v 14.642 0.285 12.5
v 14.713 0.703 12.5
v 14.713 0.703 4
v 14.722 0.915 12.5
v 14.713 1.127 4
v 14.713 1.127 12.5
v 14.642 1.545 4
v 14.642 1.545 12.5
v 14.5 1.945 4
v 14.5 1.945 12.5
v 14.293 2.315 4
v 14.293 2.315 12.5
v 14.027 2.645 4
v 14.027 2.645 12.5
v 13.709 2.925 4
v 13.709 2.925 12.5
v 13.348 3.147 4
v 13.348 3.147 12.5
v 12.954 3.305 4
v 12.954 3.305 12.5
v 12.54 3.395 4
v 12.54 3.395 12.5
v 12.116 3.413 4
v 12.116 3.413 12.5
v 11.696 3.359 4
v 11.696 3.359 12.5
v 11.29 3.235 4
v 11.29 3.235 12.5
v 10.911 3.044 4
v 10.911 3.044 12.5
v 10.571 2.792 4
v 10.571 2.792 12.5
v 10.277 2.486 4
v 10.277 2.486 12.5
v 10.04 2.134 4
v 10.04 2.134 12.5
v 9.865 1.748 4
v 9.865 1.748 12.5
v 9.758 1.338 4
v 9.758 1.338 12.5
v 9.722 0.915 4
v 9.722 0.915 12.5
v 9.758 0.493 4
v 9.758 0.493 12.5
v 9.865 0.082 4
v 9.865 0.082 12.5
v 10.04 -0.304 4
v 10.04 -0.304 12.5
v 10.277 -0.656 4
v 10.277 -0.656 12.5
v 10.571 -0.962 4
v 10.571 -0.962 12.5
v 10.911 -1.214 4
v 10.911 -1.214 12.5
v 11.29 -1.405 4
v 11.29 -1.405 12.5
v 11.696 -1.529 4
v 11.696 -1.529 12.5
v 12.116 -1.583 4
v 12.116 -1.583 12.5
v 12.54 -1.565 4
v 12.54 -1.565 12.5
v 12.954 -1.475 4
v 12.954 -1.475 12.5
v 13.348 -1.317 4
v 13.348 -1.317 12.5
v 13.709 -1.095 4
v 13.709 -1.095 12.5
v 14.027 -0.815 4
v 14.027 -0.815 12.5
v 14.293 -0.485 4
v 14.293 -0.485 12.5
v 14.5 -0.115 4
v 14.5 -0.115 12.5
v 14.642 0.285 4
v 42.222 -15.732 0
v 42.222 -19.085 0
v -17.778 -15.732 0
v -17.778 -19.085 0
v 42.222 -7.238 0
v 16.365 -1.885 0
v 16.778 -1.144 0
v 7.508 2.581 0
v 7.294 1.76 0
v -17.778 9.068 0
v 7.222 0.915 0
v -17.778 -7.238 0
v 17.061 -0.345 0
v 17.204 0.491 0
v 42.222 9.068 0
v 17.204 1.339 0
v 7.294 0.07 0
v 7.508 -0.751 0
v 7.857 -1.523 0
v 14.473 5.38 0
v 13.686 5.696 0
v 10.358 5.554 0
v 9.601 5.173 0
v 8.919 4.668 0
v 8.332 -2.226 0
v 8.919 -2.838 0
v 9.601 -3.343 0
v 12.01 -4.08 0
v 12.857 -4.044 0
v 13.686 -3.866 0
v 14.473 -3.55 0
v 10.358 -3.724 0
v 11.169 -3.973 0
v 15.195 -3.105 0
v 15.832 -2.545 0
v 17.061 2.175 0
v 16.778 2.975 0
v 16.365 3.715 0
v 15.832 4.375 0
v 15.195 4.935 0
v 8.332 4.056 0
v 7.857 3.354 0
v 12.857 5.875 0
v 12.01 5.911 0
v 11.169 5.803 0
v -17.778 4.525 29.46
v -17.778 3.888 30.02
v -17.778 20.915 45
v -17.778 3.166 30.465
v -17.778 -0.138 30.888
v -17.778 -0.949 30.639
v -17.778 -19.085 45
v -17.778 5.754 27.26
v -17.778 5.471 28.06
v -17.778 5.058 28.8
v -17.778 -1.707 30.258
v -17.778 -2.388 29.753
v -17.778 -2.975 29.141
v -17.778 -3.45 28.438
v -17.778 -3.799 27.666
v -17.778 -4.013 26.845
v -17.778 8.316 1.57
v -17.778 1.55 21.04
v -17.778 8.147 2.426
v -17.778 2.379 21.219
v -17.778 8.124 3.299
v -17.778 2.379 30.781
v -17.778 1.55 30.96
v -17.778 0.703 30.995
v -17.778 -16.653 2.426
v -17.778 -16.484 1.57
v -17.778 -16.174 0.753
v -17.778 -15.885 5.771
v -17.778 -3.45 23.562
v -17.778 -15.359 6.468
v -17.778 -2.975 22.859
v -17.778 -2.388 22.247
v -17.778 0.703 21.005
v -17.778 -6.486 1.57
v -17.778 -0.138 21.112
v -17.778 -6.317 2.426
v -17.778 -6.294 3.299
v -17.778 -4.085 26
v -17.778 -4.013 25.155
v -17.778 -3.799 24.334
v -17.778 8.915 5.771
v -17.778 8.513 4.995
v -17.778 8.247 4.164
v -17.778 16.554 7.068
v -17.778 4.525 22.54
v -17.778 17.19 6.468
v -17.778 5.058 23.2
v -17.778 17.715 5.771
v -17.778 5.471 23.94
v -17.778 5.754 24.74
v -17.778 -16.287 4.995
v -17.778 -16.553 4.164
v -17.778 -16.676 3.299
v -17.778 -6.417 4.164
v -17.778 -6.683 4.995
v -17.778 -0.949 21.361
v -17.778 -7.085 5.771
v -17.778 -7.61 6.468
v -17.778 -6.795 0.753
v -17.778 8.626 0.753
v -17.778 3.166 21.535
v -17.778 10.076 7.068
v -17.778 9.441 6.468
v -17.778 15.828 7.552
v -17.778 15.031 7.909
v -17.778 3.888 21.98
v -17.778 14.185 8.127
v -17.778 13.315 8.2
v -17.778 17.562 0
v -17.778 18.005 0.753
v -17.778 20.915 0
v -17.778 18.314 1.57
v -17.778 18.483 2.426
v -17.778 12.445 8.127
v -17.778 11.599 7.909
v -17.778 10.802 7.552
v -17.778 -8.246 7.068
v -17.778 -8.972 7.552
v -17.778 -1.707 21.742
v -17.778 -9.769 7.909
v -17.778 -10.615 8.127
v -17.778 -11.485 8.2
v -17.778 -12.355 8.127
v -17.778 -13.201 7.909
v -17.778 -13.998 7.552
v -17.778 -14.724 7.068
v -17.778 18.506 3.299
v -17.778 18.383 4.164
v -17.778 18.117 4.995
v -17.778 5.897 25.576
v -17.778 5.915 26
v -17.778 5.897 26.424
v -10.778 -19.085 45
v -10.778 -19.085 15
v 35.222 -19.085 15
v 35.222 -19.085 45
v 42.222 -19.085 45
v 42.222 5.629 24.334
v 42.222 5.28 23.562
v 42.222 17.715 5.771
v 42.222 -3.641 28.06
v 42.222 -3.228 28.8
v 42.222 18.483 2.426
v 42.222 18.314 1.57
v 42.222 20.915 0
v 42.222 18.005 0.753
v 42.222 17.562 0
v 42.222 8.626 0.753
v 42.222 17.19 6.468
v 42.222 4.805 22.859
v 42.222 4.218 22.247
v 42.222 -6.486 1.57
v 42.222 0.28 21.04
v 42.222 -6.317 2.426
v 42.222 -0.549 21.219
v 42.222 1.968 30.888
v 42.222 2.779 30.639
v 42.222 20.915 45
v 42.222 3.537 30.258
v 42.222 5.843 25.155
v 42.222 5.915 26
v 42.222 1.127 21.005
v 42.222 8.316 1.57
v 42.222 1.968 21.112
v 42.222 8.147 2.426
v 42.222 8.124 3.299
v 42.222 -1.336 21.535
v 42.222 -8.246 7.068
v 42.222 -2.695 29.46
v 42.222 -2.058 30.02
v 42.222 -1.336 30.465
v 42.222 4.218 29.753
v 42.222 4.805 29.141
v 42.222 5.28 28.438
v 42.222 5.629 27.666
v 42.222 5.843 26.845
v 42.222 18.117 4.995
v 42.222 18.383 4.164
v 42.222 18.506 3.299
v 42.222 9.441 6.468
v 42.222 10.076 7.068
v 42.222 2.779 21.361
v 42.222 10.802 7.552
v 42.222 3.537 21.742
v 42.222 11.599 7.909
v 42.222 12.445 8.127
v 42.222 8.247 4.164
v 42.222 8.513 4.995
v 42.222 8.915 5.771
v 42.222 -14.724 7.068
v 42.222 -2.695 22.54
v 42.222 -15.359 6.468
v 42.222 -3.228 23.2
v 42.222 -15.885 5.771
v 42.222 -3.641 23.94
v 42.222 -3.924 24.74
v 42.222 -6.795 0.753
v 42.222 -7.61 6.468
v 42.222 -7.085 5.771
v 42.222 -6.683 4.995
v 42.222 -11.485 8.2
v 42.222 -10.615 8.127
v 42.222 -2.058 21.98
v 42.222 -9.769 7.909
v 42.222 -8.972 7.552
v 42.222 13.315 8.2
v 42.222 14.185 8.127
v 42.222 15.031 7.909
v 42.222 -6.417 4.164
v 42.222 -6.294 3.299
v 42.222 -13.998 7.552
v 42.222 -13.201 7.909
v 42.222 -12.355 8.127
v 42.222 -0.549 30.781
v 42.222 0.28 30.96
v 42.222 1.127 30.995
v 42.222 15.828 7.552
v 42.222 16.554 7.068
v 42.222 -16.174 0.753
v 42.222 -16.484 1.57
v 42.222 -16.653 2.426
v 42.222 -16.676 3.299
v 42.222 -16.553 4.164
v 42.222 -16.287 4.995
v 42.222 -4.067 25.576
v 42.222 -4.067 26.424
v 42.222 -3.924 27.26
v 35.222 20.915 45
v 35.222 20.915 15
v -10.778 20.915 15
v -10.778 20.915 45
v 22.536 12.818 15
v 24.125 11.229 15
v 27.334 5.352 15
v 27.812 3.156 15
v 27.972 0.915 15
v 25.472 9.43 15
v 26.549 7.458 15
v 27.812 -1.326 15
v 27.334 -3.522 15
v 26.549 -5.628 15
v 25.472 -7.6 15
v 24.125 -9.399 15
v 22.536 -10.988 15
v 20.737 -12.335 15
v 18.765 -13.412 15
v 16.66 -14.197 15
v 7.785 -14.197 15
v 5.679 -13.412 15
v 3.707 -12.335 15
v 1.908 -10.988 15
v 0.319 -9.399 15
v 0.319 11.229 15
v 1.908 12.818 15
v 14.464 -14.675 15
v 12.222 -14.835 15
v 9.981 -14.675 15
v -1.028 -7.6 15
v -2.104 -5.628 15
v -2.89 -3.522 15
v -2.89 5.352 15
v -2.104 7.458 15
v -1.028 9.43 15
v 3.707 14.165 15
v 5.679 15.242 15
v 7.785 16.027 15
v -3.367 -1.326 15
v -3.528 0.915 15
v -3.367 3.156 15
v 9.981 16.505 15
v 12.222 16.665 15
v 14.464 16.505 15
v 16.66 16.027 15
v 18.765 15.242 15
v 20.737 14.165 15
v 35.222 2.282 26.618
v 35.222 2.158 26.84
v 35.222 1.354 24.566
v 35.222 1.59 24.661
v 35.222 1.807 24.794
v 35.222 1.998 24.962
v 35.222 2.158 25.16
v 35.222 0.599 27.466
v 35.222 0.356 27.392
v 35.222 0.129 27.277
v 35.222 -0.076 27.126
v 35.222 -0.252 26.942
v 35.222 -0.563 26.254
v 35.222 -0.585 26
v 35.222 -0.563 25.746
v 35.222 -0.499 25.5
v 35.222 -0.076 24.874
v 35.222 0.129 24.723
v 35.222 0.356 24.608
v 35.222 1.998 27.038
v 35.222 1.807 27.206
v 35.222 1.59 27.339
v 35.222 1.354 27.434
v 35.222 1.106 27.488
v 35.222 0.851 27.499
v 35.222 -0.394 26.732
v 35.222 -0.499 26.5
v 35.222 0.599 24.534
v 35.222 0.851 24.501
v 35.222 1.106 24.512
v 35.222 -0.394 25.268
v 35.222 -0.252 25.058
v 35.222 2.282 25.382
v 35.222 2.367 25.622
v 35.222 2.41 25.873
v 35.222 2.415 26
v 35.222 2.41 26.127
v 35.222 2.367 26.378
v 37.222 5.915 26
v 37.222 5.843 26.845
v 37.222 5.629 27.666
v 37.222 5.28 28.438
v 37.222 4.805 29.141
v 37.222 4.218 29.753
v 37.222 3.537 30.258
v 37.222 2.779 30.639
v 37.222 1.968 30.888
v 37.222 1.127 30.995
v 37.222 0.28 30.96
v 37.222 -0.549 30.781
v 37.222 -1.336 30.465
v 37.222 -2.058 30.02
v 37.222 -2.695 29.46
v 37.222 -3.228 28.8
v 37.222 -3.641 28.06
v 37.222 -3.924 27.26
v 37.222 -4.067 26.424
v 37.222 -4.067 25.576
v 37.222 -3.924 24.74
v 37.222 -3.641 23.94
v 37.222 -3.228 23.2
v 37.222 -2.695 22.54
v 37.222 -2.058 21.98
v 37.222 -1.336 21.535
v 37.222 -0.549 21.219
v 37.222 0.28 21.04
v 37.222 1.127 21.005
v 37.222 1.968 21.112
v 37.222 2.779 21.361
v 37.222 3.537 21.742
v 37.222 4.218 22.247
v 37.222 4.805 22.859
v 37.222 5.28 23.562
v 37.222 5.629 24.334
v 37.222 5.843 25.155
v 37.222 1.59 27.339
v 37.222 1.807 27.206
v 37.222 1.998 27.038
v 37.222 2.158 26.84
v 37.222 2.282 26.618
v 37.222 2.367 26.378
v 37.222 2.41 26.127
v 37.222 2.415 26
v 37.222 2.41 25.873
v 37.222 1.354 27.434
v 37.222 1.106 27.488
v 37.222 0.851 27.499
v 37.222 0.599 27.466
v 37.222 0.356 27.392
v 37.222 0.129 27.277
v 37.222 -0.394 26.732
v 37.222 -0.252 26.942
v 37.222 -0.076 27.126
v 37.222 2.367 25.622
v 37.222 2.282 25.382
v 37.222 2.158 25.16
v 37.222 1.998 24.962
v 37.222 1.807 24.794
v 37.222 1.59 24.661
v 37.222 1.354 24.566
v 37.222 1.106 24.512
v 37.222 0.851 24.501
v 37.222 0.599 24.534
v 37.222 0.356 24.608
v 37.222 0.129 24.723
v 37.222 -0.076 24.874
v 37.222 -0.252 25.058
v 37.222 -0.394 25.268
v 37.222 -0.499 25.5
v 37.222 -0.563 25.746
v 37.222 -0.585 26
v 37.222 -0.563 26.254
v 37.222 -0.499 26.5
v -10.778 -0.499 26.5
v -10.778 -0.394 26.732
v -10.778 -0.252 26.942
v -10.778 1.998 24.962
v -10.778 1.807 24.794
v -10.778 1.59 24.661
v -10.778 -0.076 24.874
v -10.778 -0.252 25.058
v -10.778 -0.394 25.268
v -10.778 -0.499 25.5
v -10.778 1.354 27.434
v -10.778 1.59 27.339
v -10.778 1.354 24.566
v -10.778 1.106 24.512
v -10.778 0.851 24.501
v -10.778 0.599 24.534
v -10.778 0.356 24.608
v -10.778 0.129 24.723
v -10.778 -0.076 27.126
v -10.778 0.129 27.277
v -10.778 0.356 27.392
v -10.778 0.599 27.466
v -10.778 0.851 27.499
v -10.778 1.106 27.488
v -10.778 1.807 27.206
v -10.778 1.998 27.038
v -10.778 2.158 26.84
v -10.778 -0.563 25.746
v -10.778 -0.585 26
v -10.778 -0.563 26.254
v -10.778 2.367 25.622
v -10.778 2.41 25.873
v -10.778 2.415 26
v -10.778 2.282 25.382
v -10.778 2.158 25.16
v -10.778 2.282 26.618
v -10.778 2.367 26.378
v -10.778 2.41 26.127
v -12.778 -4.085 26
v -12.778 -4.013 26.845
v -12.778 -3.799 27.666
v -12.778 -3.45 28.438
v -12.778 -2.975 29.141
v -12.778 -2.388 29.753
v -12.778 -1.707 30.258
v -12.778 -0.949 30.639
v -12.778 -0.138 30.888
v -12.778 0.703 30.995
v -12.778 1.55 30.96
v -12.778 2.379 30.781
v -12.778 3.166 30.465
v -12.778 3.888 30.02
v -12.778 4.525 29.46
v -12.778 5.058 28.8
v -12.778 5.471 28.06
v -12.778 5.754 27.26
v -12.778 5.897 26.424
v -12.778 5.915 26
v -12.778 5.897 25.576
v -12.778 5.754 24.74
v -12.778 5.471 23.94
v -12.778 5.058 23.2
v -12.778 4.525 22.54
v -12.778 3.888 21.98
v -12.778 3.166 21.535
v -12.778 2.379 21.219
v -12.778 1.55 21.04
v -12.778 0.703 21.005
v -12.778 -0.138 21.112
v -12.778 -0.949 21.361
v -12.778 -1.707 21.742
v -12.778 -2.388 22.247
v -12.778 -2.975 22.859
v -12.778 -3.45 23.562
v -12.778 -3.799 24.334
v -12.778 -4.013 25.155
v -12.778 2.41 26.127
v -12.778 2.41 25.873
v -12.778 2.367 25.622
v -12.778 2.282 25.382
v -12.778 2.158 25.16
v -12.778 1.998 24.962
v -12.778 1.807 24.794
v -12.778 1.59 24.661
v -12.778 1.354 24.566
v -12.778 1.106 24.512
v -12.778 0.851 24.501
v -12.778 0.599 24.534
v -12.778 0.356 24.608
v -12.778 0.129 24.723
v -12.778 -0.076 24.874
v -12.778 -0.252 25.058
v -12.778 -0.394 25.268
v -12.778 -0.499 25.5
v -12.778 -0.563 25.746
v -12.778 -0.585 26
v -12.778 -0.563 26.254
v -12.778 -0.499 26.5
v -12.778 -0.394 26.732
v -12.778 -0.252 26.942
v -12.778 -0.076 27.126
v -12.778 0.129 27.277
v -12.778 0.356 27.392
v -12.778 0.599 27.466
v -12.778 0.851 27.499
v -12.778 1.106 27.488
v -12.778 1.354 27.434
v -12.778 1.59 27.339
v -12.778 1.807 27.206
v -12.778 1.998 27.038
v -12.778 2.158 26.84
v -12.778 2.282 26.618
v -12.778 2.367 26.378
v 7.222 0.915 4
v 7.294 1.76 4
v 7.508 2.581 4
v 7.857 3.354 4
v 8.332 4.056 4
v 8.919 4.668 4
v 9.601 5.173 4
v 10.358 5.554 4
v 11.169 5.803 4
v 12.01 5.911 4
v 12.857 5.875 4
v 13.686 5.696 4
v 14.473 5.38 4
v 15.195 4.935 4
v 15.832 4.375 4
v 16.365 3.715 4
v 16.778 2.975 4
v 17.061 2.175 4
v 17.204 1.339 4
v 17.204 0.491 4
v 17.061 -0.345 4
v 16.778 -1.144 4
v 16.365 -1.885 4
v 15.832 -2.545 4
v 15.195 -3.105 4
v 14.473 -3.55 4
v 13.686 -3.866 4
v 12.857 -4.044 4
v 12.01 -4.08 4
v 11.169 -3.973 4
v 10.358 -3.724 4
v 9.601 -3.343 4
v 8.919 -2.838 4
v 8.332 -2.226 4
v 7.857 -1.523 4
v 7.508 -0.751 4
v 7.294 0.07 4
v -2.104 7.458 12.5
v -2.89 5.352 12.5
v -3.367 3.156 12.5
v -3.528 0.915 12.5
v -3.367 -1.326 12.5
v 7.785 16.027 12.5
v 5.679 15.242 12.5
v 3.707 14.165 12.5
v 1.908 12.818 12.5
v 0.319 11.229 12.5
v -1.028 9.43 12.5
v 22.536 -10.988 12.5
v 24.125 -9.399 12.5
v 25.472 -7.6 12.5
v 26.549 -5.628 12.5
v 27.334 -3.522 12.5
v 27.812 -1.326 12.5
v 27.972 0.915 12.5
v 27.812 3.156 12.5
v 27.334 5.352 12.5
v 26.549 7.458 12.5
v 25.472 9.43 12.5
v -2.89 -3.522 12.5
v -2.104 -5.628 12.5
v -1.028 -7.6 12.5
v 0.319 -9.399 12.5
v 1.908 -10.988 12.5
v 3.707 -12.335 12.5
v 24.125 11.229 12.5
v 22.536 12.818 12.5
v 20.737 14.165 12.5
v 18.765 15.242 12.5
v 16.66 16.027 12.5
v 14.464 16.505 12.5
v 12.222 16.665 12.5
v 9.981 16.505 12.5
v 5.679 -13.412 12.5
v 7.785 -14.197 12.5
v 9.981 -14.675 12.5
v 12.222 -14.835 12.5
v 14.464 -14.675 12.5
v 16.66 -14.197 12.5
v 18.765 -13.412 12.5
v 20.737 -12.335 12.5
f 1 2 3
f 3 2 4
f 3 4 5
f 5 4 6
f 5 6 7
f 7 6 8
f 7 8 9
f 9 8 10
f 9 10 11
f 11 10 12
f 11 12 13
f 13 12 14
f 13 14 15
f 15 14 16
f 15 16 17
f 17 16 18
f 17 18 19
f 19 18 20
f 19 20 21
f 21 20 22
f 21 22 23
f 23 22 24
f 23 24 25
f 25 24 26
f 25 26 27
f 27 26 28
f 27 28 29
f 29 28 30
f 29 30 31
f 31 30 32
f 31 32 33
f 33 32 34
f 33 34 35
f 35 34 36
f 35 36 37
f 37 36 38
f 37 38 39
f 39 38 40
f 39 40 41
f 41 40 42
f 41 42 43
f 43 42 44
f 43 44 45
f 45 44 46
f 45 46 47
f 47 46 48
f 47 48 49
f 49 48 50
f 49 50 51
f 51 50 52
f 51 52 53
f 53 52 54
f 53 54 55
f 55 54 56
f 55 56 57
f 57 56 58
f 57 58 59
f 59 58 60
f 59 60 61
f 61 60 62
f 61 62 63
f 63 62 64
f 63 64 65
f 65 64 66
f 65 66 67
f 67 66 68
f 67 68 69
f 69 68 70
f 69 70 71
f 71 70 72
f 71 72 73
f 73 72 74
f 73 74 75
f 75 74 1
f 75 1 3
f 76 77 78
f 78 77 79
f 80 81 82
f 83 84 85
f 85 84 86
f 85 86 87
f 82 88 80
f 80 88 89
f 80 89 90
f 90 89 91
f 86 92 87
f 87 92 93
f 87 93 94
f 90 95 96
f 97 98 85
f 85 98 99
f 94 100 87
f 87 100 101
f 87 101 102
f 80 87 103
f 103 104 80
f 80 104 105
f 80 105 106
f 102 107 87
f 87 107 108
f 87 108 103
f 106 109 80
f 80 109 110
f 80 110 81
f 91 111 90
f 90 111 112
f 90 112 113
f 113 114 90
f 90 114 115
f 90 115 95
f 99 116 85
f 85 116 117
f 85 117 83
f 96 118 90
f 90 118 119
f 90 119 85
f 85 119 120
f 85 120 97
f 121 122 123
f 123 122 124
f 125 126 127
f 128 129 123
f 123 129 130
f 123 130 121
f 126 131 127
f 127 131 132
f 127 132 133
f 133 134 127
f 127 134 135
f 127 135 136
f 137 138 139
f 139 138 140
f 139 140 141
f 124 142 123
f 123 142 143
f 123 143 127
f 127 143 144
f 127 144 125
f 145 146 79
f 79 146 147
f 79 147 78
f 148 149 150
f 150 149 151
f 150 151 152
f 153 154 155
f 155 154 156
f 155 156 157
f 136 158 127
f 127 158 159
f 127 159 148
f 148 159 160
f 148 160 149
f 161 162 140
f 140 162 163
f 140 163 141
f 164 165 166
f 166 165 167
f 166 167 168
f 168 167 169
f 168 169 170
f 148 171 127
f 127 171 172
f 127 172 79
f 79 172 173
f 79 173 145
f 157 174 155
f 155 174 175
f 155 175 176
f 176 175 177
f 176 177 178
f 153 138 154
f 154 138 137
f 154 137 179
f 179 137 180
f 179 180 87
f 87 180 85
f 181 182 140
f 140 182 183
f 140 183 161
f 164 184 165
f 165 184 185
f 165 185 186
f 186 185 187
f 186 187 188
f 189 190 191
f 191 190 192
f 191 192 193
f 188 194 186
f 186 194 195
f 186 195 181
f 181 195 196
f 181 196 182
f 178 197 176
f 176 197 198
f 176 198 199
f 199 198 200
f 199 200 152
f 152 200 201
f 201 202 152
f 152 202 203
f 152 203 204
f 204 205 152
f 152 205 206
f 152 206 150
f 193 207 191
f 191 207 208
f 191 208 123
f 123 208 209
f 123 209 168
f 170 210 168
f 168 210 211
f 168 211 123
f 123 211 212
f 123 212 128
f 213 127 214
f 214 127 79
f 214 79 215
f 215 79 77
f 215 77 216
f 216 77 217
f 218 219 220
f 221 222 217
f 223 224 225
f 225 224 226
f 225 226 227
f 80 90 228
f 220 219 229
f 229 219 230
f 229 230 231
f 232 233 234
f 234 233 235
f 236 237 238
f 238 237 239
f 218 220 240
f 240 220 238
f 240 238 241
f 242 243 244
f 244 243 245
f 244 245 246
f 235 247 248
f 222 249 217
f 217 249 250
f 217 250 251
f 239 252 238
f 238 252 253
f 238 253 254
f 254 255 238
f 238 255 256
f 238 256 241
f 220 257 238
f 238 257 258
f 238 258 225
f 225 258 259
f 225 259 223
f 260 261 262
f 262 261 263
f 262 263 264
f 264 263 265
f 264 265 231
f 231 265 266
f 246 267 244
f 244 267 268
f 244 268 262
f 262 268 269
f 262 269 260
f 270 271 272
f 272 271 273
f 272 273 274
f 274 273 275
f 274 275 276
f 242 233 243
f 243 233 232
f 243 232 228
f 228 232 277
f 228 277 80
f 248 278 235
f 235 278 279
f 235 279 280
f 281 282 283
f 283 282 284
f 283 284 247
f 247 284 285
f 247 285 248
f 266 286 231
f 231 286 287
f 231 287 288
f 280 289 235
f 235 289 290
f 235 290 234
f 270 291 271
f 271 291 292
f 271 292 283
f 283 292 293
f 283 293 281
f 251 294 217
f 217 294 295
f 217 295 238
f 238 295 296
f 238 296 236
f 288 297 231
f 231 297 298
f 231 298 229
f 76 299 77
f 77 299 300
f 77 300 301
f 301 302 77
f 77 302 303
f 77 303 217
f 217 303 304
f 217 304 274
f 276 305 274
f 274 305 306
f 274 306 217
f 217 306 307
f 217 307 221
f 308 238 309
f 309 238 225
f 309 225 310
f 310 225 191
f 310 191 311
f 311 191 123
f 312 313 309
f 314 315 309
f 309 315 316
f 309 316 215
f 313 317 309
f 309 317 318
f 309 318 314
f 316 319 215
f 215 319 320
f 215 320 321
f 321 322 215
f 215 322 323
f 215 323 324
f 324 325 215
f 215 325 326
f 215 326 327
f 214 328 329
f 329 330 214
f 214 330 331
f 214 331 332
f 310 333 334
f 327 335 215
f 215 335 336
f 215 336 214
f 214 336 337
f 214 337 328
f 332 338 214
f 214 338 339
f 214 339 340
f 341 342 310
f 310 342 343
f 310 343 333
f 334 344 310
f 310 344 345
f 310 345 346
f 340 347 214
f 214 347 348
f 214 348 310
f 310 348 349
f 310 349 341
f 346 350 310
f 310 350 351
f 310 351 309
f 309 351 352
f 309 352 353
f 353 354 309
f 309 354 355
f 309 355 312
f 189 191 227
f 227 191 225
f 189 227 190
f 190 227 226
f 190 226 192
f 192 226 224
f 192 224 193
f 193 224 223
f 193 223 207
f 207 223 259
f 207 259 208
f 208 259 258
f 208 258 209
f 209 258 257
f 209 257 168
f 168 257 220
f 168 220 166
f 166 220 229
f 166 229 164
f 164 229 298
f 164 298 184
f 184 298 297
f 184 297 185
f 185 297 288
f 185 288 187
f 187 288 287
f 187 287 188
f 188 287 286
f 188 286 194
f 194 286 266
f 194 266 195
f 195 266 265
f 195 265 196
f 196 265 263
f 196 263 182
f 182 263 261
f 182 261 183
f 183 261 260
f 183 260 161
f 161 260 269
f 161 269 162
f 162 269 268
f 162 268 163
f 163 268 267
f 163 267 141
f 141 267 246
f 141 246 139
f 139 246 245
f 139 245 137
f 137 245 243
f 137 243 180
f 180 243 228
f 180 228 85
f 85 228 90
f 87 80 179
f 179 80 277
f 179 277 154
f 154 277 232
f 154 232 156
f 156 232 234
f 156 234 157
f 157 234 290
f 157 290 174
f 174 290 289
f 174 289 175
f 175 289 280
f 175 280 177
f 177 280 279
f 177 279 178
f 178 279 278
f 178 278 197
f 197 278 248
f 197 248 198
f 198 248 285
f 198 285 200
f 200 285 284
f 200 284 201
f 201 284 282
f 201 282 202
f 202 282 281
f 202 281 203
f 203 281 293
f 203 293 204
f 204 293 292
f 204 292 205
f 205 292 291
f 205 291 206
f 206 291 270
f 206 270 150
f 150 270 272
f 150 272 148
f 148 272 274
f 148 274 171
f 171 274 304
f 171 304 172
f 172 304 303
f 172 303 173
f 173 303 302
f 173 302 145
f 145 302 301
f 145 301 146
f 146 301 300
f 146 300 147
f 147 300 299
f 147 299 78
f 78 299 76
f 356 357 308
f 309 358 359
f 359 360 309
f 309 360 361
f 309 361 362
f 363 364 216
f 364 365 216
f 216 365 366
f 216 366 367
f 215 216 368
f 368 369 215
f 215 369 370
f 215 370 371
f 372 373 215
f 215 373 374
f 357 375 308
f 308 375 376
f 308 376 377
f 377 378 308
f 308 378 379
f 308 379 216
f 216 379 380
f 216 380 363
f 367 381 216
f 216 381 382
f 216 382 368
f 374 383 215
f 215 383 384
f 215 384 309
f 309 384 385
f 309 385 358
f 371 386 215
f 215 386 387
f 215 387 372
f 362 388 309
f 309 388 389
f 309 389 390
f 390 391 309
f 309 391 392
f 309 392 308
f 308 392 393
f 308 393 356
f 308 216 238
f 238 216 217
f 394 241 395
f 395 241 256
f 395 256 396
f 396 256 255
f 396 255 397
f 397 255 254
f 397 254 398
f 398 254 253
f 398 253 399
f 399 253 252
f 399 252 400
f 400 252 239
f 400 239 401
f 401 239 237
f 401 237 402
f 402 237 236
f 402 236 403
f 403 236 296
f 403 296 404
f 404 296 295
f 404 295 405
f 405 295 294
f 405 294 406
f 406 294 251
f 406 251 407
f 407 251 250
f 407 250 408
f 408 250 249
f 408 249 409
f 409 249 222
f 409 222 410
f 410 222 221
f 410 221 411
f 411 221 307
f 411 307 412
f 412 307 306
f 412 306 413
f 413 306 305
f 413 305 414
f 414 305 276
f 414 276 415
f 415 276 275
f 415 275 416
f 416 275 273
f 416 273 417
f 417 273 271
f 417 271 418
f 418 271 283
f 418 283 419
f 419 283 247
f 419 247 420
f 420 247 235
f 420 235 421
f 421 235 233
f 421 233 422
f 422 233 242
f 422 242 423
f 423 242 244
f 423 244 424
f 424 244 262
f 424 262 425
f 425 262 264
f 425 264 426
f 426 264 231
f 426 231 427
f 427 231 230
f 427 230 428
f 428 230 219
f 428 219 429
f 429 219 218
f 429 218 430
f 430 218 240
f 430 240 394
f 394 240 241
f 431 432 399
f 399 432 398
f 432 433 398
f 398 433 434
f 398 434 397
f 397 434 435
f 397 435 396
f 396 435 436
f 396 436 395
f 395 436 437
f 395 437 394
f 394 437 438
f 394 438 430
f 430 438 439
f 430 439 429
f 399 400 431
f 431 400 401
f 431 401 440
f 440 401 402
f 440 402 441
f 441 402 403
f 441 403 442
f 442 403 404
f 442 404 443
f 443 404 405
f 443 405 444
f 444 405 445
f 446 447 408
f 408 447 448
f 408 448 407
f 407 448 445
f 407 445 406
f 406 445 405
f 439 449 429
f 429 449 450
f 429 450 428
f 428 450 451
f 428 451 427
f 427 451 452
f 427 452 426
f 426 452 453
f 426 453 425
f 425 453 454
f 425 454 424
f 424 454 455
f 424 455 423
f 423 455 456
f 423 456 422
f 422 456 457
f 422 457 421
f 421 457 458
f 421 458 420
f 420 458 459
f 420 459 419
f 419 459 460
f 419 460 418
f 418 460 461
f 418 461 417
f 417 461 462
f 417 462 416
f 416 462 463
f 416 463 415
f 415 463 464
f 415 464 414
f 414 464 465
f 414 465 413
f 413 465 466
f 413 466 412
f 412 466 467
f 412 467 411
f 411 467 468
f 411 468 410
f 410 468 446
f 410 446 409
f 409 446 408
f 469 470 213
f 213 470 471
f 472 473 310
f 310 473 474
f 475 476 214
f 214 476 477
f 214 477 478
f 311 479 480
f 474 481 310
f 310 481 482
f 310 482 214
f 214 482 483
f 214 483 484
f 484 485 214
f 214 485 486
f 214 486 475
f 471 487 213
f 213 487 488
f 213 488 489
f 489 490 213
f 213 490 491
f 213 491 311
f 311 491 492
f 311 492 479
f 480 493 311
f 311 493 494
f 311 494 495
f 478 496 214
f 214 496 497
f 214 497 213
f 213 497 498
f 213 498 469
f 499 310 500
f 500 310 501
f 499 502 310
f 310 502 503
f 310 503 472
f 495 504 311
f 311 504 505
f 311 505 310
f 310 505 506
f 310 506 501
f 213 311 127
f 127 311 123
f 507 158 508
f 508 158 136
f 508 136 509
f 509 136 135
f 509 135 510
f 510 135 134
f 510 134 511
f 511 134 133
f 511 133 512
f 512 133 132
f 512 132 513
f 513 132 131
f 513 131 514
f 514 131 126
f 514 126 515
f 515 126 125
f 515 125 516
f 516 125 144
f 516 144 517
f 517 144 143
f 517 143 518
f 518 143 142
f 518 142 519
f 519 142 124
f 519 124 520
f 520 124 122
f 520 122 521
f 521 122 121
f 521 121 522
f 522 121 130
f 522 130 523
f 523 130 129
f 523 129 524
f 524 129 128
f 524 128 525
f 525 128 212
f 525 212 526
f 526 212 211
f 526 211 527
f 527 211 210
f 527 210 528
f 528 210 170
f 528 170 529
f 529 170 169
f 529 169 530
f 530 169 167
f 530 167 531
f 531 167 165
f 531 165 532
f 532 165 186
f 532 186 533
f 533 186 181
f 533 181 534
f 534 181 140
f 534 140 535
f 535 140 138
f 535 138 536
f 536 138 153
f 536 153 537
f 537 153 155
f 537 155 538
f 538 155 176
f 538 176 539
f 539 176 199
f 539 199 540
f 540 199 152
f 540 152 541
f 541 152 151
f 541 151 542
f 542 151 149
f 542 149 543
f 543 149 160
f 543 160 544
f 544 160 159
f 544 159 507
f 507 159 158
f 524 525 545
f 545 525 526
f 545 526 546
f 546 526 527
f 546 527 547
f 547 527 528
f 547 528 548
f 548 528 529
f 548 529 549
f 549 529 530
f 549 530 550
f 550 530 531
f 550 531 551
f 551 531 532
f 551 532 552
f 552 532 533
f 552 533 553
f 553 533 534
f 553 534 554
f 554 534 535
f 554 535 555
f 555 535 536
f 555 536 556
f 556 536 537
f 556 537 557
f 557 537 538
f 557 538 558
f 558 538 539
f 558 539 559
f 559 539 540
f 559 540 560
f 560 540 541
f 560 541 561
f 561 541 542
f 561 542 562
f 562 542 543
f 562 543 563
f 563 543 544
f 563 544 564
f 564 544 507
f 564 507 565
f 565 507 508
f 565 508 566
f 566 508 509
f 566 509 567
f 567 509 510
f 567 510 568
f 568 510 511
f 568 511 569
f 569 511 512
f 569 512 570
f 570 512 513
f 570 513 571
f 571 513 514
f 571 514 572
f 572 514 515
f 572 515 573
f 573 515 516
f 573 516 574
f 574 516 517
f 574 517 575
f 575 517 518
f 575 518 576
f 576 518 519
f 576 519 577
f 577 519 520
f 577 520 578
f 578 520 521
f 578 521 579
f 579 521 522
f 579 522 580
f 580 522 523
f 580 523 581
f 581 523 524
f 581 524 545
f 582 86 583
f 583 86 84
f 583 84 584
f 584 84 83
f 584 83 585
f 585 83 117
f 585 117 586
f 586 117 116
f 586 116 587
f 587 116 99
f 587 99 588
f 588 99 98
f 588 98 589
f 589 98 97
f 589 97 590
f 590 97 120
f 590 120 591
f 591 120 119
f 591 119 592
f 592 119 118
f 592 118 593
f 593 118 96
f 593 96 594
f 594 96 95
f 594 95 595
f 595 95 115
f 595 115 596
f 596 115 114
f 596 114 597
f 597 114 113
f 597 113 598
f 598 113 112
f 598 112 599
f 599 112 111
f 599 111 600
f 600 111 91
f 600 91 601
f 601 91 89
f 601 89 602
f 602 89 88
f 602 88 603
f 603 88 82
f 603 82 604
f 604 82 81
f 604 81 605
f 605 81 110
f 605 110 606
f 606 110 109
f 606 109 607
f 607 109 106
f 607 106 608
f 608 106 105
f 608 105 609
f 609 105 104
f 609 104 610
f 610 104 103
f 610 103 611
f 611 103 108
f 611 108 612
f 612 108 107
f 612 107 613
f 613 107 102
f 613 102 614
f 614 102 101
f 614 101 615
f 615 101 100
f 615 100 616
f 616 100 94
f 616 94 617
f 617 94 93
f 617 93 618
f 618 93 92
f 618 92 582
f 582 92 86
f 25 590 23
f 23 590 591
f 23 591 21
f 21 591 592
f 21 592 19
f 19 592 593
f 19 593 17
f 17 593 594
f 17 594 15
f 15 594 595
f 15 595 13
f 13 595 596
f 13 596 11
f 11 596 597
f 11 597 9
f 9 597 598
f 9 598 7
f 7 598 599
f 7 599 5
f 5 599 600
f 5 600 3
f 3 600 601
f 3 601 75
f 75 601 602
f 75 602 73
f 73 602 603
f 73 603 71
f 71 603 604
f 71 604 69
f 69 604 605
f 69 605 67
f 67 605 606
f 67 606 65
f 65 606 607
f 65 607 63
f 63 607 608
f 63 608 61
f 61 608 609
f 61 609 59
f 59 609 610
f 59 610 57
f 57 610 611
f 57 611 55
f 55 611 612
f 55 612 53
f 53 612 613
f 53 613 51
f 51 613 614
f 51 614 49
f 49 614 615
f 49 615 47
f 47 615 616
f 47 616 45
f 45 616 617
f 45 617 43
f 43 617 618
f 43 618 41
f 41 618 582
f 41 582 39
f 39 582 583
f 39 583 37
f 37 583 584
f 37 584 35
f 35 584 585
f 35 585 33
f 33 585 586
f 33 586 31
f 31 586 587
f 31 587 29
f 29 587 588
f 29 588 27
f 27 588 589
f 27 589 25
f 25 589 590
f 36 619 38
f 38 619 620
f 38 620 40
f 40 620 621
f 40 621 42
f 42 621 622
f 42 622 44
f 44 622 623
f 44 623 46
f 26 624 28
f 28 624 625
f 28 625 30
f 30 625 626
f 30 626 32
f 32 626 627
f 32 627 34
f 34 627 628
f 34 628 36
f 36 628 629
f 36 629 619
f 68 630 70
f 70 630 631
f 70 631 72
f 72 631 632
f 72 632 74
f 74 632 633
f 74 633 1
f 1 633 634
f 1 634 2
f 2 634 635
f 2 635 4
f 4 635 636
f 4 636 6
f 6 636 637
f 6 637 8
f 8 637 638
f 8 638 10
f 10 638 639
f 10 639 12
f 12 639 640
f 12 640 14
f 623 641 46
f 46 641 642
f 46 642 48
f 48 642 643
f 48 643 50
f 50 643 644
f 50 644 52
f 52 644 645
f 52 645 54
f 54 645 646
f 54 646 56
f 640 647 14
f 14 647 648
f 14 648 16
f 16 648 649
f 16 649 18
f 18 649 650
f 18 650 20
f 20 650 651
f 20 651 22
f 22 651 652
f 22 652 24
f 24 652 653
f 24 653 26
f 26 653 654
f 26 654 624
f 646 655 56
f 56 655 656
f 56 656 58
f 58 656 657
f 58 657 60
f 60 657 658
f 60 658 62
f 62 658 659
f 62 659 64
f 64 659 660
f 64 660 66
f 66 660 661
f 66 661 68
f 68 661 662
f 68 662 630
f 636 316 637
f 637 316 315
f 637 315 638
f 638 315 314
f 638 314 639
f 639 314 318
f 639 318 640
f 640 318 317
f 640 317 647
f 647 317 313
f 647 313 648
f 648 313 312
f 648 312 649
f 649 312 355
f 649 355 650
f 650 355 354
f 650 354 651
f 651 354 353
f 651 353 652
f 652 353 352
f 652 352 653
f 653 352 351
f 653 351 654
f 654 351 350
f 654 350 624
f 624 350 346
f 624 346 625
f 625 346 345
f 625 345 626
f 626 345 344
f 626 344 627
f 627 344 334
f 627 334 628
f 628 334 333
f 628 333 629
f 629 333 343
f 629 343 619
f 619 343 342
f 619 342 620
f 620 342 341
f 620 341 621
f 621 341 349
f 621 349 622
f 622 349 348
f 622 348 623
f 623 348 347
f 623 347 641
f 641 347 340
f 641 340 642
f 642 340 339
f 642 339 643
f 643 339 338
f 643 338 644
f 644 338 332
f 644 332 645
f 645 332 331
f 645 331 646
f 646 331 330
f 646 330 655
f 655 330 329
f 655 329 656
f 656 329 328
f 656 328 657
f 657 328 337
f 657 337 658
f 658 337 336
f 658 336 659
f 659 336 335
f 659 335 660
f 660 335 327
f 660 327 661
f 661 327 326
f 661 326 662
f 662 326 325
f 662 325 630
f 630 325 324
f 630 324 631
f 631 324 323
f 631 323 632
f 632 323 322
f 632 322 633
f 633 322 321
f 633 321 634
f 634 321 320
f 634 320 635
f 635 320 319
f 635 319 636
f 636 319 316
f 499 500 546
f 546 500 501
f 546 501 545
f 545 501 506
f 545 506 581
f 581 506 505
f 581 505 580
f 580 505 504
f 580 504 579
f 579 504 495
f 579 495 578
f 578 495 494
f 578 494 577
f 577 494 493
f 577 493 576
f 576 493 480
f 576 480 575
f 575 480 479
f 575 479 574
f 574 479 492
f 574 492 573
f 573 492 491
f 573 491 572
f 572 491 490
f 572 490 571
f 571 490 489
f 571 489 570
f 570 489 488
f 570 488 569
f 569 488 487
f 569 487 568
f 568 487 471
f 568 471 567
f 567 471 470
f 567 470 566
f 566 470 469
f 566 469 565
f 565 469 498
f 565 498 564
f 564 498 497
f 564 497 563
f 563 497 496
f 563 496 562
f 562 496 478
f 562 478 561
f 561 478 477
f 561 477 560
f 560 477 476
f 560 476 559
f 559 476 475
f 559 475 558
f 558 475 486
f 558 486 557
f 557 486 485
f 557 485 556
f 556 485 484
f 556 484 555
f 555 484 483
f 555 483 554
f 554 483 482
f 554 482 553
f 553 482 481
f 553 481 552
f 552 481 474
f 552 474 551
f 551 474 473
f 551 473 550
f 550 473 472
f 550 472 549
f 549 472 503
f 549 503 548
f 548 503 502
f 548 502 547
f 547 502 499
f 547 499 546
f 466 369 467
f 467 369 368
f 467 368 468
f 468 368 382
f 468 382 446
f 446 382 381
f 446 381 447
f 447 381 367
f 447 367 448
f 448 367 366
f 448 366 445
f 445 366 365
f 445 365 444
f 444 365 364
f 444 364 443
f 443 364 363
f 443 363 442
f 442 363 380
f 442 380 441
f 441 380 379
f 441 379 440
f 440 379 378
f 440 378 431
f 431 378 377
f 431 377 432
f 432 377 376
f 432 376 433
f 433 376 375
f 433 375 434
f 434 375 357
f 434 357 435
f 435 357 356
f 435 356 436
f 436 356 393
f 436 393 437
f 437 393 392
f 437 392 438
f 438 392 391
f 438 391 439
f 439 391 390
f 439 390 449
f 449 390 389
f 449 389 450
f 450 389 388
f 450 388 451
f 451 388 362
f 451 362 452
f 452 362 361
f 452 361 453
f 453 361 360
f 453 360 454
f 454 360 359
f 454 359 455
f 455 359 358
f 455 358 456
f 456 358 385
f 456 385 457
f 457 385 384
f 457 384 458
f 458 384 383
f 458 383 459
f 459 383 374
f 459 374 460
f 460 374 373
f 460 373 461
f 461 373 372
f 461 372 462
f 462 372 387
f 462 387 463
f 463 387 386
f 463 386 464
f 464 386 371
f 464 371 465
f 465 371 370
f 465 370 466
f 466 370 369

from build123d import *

# Parameters (mm, degrees)
SKETCH1_W               = 60
SKETCH1_H               = 40
BOSS_EXTRUDE1_DEPTH     = 15
SKETCH3_R               = 5.2
CUT_EXTRUDE1_DEPTH      = 63
SKETCH4_W               = 7
SKETCH4_H               = 40
BOSS_EXTRUDE2_DEPTH     = 30
SKETCH5_R               = 5
CUT_EXTRUDE2_DEPTH      = 5
SKETCH6_R               = 5
CUT_EXTRUDE3_DEPTH      = 4
SKETCH7_R               = 2.5
CUT_EXTRUDE4_DEPTH      = 42
SKETCH8_R               = 15.75
CUT_EXTRUDE5_DEPTH      = 2.5
SKETCH9_R               = 1.5
CUT_EXTRUDE6_DEPTH      = 54
CUT_EXTRUDE6_DEPTH_BACK = 8


with BuildPart() as part:
    # Sketch1 → Boss-Extrude1 (new body)
    with BuildSketch(Plane.XY):
        with Locations((12.222222222, 0.91503268)):
            Rectangle(SKETCH1_W, SKETCH1_H)
    extrude(amount=BOSS_EXTRUDE1_DEPTH)

    # Sketch3 → Cut-Extrude1 (cut)
    with BuildSketch(Plane(origin=(42.222222222, 0, 0), x_dir=(0, 0, -1), z_dir=(1, 0, 0))):
        with Locations((-3, -11.48496732)):
            Circle(SKETCH3_R)
        with Locations((-3, 13.31503268)):
            Circle(SKETCH3_R)
    extrude(amount=-CUT_EXTRUDE1_DEPTH, mode=Mode.SUBTRACT)

    # Sketch4 → Boss-Extrude2 (add)
    with BuildSketch(Plane.XY.offset(15)):
        with Locations((38.722222222, 0.91503268)):
            Rectangle(SKETCH4_W, SKETCH4_H)
    boss_extrude2 = extrude(amount=BOSS_EXTRUDE2_DEPTH)

    # Sketch5 → Cut-Extrude2 (cut)
    with BuildSketch(Plane(origin=(42.222222222, 0, 0), x_dir=(0, 0, -1), z_dir=(1, 0, 0))):
        with Locations((-26, 0.91503268)):
            Circle(SKETCH5_R)
    cut_extrude2 = extrude(amount=-CUT_EXTRUDE2_DEPTH, mode=Mode.SUBTRACT)

    # Mirror1: Boss-Extrude2, Cut-Extrude2 across plane
    add(boss_extrude2.mirror(Plane.ZY.offset(-12.222222222)))
    add(cut_extrude2.mirror(Plane.ZY.offset(-12.222222222)), mode=Mode.SUBTRACT)

    # Sketch6 → Cut-Extrude3 (cut)
    with BuildSketch(Plane(origin=(0, 0, 0), x_dir=(-1, 0, 0), z_dir=(0, 0, -1))):
        with Locations((-12.222222222, 0.91503268)):
            Circle(SKETCH6_R)
    extrude(amount=-CUT_EXTRUDE3_DEPTH, mode=Mode.SUBTRACT)

    # Sketch7 → Cut-Extrude4 (cut, through all)
    with BuildSketch(Plane(origin=(0, 0, 4), x_dir=(-1, 0, 0), z_dir=(0, 0, -1))):
        with Locations((-12.222222222, 0.91503268)):
            Circle(SKETCH7_R)
    extrude(amount=-CUT_EXTRUDE4_DEPTH, mode=Mode.SUBTRACT)

    # Sketch8 → Cut-Extrude5 (cut)
    with BuildSketch(Plane.XY.offset(15)):
        with Locations((12.222222222, 0.91503268)):
            Circle(SKETCH8_R)
    extrude(amount=-CUT_EXTRUDE5_DEPTH, mode=Mode.SUBTRACT)

    # Sketch9 → Cut-Extrude6 (cut, two sides)
    with BuildSketch(Plane.ZY.offset(-35.222222222)) as cut_extrude6_sk:
        with Locations((26, 0.91503268)):
            Circle(SKETCH9_R)
    extrude(amount=CUT_EXTRUDE6_DEPTH, mode=Mode.SUBTRACT)
    extrude(cut_extrude6_sk.sketch, amount=-CUT_EXTRUDE6_DEPTH_BACK, mode=Mode.SUBTRACT)


solid = part.part
